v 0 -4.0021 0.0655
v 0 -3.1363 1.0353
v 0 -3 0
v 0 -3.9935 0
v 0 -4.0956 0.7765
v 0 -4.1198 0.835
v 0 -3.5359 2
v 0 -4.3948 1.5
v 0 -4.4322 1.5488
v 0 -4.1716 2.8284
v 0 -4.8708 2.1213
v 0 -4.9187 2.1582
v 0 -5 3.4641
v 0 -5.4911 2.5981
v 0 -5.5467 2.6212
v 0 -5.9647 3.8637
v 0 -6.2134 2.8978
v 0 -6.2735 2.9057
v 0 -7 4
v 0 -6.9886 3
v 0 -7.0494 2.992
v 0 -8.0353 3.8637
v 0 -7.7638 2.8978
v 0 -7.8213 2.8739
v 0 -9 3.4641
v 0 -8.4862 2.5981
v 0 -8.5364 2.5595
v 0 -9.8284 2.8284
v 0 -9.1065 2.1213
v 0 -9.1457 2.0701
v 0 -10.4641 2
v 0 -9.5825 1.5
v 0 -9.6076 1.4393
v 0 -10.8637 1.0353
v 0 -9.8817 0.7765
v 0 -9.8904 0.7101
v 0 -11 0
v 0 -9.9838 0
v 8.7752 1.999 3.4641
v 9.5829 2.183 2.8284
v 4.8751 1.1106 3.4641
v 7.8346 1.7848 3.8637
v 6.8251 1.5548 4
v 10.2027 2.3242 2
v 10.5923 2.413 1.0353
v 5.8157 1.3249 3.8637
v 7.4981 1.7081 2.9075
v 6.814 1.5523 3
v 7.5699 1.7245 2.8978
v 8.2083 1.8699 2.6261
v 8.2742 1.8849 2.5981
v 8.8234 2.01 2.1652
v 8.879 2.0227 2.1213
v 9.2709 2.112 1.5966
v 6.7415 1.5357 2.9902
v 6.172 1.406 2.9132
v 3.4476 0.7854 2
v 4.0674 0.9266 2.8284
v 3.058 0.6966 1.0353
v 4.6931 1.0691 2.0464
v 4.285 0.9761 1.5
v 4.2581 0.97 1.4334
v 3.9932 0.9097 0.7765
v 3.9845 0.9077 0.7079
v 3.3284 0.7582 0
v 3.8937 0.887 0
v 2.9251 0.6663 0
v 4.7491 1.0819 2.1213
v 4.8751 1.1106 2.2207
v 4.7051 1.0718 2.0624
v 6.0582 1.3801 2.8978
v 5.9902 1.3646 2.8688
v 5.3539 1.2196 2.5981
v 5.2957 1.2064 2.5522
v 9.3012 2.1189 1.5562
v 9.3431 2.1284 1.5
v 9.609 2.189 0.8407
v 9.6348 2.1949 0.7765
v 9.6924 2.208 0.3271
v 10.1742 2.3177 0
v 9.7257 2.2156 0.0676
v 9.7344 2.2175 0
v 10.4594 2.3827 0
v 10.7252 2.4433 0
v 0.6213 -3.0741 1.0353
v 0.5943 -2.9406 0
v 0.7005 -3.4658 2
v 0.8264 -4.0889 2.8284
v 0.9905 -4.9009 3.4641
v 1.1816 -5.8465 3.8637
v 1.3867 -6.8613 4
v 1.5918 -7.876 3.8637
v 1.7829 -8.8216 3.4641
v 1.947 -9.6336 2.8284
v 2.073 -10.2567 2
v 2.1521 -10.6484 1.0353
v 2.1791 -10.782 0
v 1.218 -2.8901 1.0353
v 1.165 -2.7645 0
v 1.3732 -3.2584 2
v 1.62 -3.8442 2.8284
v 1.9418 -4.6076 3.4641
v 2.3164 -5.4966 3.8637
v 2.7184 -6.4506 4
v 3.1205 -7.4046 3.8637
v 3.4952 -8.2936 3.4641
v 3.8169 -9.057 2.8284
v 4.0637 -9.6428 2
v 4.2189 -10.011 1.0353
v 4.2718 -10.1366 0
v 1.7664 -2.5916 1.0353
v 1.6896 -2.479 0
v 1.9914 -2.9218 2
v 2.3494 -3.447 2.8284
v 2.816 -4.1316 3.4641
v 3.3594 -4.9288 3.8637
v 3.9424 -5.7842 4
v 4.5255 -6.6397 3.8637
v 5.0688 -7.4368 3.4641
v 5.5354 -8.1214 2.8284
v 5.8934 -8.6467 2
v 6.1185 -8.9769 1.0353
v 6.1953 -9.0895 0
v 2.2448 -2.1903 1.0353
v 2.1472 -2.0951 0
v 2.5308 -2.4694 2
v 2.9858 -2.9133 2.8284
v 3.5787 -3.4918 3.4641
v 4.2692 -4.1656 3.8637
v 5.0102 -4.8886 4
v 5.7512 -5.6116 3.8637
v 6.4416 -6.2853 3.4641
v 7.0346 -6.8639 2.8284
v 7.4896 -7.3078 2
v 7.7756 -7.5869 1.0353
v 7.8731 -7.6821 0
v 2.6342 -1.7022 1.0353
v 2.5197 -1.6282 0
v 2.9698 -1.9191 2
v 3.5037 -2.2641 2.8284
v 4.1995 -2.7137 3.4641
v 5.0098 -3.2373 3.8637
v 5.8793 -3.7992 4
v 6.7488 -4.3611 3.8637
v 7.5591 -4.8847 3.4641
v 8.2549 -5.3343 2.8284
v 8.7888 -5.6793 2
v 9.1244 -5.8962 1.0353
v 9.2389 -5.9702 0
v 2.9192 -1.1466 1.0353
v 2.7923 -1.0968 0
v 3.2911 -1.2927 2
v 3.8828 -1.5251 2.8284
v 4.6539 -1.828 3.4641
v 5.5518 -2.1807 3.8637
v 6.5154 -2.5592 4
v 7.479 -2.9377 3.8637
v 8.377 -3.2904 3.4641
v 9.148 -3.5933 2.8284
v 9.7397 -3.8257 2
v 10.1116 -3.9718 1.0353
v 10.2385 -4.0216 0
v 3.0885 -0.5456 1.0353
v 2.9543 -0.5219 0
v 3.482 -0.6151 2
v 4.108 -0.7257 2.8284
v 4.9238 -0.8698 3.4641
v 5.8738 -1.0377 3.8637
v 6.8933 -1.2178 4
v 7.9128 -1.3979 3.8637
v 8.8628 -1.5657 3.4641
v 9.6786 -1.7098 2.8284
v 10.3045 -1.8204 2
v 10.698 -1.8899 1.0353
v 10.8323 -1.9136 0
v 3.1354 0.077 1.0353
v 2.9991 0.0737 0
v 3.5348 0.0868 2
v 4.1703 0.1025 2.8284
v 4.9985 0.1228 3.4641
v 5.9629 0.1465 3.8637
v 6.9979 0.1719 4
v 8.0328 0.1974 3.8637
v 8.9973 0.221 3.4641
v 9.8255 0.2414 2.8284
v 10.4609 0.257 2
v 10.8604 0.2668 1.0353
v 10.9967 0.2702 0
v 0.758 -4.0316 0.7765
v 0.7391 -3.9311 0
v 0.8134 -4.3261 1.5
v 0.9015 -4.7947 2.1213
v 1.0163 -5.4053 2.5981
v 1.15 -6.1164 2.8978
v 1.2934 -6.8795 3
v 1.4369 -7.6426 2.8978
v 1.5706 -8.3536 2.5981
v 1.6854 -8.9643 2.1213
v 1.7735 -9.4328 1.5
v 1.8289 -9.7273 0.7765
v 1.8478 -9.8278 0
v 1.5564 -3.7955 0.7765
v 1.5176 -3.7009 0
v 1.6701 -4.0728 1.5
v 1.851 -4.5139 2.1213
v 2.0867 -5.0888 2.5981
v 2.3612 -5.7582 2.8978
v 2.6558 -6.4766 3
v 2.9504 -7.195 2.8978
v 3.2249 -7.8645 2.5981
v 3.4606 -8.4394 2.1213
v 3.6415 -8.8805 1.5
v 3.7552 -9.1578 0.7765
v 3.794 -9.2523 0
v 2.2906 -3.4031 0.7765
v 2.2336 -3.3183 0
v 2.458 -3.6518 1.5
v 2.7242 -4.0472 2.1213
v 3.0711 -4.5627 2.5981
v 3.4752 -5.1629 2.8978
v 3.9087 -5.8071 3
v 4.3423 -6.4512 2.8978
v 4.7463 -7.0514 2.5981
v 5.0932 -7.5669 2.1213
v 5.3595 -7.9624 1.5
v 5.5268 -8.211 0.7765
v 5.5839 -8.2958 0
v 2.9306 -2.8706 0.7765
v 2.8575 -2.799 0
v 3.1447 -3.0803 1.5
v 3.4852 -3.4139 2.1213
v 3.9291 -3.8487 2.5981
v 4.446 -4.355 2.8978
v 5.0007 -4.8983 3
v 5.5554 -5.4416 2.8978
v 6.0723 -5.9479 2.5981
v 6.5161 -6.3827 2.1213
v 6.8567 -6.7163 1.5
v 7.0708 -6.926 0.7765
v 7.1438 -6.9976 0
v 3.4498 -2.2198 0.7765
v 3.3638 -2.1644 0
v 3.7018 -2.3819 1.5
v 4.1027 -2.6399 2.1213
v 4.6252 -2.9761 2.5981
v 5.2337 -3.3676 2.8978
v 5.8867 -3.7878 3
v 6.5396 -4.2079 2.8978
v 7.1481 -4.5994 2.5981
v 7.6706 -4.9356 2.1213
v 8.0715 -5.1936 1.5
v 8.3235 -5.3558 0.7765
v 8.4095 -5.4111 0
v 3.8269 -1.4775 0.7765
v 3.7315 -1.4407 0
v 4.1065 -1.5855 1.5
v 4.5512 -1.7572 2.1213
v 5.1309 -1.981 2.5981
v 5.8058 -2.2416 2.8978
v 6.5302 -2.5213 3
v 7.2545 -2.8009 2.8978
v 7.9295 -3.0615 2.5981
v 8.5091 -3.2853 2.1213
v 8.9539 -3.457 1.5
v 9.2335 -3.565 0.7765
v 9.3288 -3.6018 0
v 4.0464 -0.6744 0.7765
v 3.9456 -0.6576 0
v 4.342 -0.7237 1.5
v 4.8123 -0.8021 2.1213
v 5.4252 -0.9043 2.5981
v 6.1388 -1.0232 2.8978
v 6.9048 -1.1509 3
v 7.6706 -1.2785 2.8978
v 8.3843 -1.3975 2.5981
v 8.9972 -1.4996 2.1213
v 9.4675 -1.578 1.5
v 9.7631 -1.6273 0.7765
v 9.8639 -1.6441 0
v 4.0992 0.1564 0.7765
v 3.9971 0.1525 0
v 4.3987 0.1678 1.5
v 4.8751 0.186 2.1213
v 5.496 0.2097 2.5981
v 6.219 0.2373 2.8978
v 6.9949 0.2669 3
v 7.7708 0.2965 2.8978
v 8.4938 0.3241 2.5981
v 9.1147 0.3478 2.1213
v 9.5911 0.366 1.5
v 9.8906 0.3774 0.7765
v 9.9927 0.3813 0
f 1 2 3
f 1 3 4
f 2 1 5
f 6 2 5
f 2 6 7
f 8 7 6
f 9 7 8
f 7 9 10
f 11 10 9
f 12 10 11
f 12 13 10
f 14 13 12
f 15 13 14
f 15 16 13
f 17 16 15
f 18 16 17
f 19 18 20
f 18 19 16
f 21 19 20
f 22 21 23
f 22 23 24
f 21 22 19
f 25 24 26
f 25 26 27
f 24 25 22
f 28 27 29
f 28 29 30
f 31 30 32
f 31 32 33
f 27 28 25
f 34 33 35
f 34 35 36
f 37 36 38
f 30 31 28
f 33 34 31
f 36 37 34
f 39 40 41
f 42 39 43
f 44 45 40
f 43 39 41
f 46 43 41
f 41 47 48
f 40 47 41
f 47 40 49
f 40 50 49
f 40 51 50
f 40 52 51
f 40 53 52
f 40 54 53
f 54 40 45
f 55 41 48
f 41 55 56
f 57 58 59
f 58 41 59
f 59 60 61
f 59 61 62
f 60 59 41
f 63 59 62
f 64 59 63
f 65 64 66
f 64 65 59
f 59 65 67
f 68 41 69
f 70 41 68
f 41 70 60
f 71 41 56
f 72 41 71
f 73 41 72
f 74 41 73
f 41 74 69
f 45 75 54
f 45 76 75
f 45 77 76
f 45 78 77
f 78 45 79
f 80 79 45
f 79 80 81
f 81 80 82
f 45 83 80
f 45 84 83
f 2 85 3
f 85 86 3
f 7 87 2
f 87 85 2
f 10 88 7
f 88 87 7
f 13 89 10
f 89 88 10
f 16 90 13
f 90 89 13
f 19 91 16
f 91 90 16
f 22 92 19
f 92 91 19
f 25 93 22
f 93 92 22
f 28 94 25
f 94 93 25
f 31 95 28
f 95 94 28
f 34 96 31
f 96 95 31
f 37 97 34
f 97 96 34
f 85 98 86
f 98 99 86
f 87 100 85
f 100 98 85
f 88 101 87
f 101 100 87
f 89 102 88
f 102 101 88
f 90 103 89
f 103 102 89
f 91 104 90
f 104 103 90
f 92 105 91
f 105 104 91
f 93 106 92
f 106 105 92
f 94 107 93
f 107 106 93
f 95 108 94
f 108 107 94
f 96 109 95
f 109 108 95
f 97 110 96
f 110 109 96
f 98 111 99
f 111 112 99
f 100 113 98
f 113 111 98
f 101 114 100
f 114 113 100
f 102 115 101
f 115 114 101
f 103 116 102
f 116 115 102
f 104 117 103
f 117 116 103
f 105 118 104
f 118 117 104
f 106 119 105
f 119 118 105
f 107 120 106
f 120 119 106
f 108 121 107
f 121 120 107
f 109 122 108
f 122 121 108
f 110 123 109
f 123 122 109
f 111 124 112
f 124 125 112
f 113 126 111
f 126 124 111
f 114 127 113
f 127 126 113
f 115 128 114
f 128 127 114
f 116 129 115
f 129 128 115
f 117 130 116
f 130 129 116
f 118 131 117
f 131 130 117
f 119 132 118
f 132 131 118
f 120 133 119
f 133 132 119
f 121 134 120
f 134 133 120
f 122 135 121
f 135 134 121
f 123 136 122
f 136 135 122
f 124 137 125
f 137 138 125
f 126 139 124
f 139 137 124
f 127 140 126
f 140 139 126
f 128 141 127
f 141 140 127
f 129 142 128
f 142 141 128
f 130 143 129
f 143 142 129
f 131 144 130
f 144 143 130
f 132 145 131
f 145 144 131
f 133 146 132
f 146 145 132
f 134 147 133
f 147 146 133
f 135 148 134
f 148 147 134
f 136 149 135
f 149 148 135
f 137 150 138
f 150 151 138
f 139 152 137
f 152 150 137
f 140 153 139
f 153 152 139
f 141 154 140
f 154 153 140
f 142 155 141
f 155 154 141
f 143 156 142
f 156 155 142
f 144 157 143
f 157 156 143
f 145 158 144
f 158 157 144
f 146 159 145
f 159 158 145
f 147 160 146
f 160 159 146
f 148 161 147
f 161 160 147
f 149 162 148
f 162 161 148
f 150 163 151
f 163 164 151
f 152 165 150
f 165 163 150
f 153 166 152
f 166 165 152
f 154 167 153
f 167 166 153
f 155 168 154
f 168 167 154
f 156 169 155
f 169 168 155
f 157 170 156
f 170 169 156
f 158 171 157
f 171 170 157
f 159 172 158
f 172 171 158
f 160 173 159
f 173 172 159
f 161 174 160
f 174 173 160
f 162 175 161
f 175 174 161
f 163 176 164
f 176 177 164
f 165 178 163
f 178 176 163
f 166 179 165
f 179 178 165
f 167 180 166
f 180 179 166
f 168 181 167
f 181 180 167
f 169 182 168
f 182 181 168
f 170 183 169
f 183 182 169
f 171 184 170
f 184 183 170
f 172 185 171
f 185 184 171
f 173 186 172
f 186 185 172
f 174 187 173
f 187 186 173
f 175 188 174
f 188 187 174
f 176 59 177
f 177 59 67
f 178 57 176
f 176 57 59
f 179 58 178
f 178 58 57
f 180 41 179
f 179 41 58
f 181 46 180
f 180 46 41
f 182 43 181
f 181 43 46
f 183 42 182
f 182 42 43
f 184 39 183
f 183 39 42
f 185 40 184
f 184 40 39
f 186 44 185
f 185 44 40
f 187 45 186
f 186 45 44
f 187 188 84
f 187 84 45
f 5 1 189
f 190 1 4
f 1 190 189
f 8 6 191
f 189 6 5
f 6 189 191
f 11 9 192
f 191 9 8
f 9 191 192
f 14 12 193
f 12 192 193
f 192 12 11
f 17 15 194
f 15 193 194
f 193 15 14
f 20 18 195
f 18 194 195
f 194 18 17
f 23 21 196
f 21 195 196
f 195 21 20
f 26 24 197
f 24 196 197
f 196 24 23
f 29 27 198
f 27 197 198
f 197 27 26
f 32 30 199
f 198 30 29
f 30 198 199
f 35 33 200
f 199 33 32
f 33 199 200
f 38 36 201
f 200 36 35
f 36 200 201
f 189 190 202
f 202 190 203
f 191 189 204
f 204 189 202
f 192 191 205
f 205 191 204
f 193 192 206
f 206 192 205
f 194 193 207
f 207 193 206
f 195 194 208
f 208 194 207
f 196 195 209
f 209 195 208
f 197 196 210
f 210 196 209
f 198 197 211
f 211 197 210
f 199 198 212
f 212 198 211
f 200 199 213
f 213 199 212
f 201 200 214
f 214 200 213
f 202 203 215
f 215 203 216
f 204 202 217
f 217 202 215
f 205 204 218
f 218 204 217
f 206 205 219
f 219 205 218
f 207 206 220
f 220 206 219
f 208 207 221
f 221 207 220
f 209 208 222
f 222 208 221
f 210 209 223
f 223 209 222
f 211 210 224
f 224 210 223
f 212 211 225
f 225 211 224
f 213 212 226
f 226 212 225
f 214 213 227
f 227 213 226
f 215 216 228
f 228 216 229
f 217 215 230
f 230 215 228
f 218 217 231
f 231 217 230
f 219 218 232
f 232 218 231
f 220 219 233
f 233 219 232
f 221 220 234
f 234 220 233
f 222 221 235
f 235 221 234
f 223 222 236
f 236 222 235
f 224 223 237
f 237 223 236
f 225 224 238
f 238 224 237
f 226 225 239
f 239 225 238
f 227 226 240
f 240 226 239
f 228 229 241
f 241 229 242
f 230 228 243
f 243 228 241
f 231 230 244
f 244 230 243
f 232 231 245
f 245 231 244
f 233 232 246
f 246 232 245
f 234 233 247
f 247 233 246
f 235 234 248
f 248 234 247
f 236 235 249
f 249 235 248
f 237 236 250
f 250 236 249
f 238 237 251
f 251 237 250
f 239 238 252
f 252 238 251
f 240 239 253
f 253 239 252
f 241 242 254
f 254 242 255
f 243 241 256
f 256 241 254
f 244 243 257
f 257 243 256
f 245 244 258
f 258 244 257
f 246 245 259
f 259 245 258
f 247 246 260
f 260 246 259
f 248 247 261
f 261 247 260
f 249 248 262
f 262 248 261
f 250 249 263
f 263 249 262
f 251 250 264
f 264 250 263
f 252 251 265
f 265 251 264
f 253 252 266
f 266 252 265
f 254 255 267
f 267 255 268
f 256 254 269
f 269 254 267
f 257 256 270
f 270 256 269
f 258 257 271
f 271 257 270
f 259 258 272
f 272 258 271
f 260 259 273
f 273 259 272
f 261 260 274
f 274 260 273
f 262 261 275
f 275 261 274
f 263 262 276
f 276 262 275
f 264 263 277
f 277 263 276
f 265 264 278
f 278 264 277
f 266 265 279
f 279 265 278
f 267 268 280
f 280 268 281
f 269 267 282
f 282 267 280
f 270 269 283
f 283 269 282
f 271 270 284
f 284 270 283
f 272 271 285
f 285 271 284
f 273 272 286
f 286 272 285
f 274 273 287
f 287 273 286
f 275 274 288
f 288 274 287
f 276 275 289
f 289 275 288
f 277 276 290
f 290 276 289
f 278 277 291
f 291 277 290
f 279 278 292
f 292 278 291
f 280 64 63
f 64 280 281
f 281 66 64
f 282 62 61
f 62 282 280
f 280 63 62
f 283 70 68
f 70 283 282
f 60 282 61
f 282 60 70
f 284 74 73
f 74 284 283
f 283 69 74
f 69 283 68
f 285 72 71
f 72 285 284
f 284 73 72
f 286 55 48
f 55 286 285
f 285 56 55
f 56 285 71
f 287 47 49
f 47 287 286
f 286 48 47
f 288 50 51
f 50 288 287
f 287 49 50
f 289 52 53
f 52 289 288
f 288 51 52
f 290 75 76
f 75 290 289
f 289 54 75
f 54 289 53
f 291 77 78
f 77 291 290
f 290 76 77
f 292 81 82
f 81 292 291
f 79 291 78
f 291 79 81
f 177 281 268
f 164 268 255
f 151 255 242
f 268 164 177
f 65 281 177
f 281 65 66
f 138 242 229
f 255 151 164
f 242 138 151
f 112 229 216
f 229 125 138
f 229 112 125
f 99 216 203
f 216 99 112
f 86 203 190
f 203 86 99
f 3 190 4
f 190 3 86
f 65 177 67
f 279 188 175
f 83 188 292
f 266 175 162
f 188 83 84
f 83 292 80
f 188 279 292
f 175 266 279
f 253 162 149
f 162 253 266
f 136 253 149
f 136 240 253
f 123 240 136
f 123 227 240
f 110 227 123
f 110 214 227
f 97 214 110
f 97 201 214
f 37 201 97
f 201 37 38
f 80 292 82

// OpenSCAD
// file: ../build_environments.scad
// build_environments.scad: modules to build level sections
//

module pool(diameter=10.0, wall_height=2.0, step_width=3.0, connections=[])
{
    difference() {
        union() {
        difference() {
            cylinder(h=0.5,r1=diameter+step_width,r2=diameter+step_width,$fn=48);
            translate([0,0,-0.1])
                cylinder(h=0.7,r1=diameter,r2=diameter,$fn=48);
        }
        difference() {
            cylinder(h=wall_height,r1=diameter+step_width+1.0,r2=diameter+step_width+1.0,$fn=48);
            translate([0,0,-0.1])
                cylinder(h=wall_height+0.2,r1=diameter+step_width,r2=diameter+step_width,$fn=48);
        }
        }
    
        for (c = connections)
        {
            rotate([0,90,0]) {
                angle = atan2(c[1],c[0]);
                rotate([-angle,0,0]) {
                    cylinder(h=diameter+5.0,r1=c[2],r2=c[2],$fn=48);
                }
            }
        }
    }
}

module straight(length=10.0, width=2.0, dy1=0.0, dy2=0.0, dz=0.0)
{
    dims = [0, 0, 0, 0, 0, (dz/length)];
    matrix = [
        [ 1, dims[0], dims[1], 0 ],
        [ dims[2], 1, dims[4], 0 ],
        [ dims[5], dims[3], 1, 0 ],
        [ 0, 0, 0, 1 ]
    ];
    multmatrix(matrix)
    difference() {
        translate([dy1,0,0])
        union() {
            rotate([0,90,0]) {
                difference() {
                    cylinder(h=(length-dy1-dy2),r1=width+1.0,r2=width+1.0,$fn=24);
                    translate([0,0,-0.1])
                        cylinder(h=(length-dy1-dy2+0.2),r1=width,r2=width,$fn=24);
                }
                difference() {
                    cylinder(h=1.0,r1=width+2.0,r2=width+2.0,$fn=24);
                    translate([0,0,-0.1])
                        cylinder(h=1.2,r1=width,r2=width,$fn=24);
                }
                translate([0,0,(length-dy1-dy2)-1.0]) {
                    difference() {
                        cylinder(h=1.0,r1=width+2.0,r2=width+2.0,$fn=24);
                        translate([0,0,-0.1])
                            cylinder(h=1.2,r1=width,r2=width,$fn=24);
                    }
                }
            }
        }
        translate([0,0,-(2*width+4.0)/2])
            cube([3*length,3*length,2*width+4.0],center=true);
    }
}

module curve(p0=[0,0], center=[0,0], dir=1, angle=0.0, width=2.0)
{
    radius = sqrt((p0[0]-center[0])*(p0[0]-center[0]) + (p0[1]-center[1])*(p0[1]-center[1]));
    if (dir == 0) {
        difference() {
            rotate([0,0,-90])
            difference() {
                rotate_extrude(angle = angle, convexity = 10, $fn=32)
                    translate([radius, 0, 0])
                        circle(r = width+1.0,$fn=24);
                rotate([0,0,-1.0])
                    rotate_extrude(angle = angle+2.0, convexity = 10, $fn=32)
                        translate([radius, 0, 0])
                            circle(r = width,$fn=24);
            }
            translate([0,0,-(2*width+4.0)/2])
                cube([5*radius,5*radius,2*width+4.0],center=true);
        }
    }
    else {
        difference() {
            rotate([0,0,90])
            difference() {
                rotate_extrude(angle = -angle, convexity = 10, $fn=32)
                    translate([radius, 0, 0])
                        circle(r = width+1.0,$fn=24);
                rotate([0,0,1.0])
                    rotate_extrude(angle = -angle-2.0, convexity = 10, $fn=32)
                        translate([radius, 0, 0])
                            circle(r = width,$fn=24);
            }
            translate([0,0,-(2*width+4.0)/2])
                cube([5*radius,5*radius,2*width+4.0],center=true);
        }
    }

}

// test pool
//pool(diameter=12.0000, wall_height=3.0000, step_width=3.0000, connections=[[0.0000,-26.0000,2.0000], [23.6074,0.0000,2.0000]]);

// test straight, slope
//straight(length=26.0000, width=2.0000, dy1=11.8322, dy2=6.7082, dz=0.0000);
//straight(length=29.1549, width=12.0000, dy1=0.0000, dy2=0.0000, dz=-15.0000);

// test curve
//curve(p0=[23.6074, 0.0000], center=[23.6074, 5.0000], dir=0, angle=60.1011, width=2.0000);
//curve(p0=[33.6426, 12.4219], center=[37.9771, 9.9295], dir=1, angle=120.4627, width=2.0000);
// main file
use <../build_environments.scad>;
curve(p0=[-20.5068, 39.9770], center=[-27.4486, 40.8778], dir=0, angle=102.8333, width=3.0000);
